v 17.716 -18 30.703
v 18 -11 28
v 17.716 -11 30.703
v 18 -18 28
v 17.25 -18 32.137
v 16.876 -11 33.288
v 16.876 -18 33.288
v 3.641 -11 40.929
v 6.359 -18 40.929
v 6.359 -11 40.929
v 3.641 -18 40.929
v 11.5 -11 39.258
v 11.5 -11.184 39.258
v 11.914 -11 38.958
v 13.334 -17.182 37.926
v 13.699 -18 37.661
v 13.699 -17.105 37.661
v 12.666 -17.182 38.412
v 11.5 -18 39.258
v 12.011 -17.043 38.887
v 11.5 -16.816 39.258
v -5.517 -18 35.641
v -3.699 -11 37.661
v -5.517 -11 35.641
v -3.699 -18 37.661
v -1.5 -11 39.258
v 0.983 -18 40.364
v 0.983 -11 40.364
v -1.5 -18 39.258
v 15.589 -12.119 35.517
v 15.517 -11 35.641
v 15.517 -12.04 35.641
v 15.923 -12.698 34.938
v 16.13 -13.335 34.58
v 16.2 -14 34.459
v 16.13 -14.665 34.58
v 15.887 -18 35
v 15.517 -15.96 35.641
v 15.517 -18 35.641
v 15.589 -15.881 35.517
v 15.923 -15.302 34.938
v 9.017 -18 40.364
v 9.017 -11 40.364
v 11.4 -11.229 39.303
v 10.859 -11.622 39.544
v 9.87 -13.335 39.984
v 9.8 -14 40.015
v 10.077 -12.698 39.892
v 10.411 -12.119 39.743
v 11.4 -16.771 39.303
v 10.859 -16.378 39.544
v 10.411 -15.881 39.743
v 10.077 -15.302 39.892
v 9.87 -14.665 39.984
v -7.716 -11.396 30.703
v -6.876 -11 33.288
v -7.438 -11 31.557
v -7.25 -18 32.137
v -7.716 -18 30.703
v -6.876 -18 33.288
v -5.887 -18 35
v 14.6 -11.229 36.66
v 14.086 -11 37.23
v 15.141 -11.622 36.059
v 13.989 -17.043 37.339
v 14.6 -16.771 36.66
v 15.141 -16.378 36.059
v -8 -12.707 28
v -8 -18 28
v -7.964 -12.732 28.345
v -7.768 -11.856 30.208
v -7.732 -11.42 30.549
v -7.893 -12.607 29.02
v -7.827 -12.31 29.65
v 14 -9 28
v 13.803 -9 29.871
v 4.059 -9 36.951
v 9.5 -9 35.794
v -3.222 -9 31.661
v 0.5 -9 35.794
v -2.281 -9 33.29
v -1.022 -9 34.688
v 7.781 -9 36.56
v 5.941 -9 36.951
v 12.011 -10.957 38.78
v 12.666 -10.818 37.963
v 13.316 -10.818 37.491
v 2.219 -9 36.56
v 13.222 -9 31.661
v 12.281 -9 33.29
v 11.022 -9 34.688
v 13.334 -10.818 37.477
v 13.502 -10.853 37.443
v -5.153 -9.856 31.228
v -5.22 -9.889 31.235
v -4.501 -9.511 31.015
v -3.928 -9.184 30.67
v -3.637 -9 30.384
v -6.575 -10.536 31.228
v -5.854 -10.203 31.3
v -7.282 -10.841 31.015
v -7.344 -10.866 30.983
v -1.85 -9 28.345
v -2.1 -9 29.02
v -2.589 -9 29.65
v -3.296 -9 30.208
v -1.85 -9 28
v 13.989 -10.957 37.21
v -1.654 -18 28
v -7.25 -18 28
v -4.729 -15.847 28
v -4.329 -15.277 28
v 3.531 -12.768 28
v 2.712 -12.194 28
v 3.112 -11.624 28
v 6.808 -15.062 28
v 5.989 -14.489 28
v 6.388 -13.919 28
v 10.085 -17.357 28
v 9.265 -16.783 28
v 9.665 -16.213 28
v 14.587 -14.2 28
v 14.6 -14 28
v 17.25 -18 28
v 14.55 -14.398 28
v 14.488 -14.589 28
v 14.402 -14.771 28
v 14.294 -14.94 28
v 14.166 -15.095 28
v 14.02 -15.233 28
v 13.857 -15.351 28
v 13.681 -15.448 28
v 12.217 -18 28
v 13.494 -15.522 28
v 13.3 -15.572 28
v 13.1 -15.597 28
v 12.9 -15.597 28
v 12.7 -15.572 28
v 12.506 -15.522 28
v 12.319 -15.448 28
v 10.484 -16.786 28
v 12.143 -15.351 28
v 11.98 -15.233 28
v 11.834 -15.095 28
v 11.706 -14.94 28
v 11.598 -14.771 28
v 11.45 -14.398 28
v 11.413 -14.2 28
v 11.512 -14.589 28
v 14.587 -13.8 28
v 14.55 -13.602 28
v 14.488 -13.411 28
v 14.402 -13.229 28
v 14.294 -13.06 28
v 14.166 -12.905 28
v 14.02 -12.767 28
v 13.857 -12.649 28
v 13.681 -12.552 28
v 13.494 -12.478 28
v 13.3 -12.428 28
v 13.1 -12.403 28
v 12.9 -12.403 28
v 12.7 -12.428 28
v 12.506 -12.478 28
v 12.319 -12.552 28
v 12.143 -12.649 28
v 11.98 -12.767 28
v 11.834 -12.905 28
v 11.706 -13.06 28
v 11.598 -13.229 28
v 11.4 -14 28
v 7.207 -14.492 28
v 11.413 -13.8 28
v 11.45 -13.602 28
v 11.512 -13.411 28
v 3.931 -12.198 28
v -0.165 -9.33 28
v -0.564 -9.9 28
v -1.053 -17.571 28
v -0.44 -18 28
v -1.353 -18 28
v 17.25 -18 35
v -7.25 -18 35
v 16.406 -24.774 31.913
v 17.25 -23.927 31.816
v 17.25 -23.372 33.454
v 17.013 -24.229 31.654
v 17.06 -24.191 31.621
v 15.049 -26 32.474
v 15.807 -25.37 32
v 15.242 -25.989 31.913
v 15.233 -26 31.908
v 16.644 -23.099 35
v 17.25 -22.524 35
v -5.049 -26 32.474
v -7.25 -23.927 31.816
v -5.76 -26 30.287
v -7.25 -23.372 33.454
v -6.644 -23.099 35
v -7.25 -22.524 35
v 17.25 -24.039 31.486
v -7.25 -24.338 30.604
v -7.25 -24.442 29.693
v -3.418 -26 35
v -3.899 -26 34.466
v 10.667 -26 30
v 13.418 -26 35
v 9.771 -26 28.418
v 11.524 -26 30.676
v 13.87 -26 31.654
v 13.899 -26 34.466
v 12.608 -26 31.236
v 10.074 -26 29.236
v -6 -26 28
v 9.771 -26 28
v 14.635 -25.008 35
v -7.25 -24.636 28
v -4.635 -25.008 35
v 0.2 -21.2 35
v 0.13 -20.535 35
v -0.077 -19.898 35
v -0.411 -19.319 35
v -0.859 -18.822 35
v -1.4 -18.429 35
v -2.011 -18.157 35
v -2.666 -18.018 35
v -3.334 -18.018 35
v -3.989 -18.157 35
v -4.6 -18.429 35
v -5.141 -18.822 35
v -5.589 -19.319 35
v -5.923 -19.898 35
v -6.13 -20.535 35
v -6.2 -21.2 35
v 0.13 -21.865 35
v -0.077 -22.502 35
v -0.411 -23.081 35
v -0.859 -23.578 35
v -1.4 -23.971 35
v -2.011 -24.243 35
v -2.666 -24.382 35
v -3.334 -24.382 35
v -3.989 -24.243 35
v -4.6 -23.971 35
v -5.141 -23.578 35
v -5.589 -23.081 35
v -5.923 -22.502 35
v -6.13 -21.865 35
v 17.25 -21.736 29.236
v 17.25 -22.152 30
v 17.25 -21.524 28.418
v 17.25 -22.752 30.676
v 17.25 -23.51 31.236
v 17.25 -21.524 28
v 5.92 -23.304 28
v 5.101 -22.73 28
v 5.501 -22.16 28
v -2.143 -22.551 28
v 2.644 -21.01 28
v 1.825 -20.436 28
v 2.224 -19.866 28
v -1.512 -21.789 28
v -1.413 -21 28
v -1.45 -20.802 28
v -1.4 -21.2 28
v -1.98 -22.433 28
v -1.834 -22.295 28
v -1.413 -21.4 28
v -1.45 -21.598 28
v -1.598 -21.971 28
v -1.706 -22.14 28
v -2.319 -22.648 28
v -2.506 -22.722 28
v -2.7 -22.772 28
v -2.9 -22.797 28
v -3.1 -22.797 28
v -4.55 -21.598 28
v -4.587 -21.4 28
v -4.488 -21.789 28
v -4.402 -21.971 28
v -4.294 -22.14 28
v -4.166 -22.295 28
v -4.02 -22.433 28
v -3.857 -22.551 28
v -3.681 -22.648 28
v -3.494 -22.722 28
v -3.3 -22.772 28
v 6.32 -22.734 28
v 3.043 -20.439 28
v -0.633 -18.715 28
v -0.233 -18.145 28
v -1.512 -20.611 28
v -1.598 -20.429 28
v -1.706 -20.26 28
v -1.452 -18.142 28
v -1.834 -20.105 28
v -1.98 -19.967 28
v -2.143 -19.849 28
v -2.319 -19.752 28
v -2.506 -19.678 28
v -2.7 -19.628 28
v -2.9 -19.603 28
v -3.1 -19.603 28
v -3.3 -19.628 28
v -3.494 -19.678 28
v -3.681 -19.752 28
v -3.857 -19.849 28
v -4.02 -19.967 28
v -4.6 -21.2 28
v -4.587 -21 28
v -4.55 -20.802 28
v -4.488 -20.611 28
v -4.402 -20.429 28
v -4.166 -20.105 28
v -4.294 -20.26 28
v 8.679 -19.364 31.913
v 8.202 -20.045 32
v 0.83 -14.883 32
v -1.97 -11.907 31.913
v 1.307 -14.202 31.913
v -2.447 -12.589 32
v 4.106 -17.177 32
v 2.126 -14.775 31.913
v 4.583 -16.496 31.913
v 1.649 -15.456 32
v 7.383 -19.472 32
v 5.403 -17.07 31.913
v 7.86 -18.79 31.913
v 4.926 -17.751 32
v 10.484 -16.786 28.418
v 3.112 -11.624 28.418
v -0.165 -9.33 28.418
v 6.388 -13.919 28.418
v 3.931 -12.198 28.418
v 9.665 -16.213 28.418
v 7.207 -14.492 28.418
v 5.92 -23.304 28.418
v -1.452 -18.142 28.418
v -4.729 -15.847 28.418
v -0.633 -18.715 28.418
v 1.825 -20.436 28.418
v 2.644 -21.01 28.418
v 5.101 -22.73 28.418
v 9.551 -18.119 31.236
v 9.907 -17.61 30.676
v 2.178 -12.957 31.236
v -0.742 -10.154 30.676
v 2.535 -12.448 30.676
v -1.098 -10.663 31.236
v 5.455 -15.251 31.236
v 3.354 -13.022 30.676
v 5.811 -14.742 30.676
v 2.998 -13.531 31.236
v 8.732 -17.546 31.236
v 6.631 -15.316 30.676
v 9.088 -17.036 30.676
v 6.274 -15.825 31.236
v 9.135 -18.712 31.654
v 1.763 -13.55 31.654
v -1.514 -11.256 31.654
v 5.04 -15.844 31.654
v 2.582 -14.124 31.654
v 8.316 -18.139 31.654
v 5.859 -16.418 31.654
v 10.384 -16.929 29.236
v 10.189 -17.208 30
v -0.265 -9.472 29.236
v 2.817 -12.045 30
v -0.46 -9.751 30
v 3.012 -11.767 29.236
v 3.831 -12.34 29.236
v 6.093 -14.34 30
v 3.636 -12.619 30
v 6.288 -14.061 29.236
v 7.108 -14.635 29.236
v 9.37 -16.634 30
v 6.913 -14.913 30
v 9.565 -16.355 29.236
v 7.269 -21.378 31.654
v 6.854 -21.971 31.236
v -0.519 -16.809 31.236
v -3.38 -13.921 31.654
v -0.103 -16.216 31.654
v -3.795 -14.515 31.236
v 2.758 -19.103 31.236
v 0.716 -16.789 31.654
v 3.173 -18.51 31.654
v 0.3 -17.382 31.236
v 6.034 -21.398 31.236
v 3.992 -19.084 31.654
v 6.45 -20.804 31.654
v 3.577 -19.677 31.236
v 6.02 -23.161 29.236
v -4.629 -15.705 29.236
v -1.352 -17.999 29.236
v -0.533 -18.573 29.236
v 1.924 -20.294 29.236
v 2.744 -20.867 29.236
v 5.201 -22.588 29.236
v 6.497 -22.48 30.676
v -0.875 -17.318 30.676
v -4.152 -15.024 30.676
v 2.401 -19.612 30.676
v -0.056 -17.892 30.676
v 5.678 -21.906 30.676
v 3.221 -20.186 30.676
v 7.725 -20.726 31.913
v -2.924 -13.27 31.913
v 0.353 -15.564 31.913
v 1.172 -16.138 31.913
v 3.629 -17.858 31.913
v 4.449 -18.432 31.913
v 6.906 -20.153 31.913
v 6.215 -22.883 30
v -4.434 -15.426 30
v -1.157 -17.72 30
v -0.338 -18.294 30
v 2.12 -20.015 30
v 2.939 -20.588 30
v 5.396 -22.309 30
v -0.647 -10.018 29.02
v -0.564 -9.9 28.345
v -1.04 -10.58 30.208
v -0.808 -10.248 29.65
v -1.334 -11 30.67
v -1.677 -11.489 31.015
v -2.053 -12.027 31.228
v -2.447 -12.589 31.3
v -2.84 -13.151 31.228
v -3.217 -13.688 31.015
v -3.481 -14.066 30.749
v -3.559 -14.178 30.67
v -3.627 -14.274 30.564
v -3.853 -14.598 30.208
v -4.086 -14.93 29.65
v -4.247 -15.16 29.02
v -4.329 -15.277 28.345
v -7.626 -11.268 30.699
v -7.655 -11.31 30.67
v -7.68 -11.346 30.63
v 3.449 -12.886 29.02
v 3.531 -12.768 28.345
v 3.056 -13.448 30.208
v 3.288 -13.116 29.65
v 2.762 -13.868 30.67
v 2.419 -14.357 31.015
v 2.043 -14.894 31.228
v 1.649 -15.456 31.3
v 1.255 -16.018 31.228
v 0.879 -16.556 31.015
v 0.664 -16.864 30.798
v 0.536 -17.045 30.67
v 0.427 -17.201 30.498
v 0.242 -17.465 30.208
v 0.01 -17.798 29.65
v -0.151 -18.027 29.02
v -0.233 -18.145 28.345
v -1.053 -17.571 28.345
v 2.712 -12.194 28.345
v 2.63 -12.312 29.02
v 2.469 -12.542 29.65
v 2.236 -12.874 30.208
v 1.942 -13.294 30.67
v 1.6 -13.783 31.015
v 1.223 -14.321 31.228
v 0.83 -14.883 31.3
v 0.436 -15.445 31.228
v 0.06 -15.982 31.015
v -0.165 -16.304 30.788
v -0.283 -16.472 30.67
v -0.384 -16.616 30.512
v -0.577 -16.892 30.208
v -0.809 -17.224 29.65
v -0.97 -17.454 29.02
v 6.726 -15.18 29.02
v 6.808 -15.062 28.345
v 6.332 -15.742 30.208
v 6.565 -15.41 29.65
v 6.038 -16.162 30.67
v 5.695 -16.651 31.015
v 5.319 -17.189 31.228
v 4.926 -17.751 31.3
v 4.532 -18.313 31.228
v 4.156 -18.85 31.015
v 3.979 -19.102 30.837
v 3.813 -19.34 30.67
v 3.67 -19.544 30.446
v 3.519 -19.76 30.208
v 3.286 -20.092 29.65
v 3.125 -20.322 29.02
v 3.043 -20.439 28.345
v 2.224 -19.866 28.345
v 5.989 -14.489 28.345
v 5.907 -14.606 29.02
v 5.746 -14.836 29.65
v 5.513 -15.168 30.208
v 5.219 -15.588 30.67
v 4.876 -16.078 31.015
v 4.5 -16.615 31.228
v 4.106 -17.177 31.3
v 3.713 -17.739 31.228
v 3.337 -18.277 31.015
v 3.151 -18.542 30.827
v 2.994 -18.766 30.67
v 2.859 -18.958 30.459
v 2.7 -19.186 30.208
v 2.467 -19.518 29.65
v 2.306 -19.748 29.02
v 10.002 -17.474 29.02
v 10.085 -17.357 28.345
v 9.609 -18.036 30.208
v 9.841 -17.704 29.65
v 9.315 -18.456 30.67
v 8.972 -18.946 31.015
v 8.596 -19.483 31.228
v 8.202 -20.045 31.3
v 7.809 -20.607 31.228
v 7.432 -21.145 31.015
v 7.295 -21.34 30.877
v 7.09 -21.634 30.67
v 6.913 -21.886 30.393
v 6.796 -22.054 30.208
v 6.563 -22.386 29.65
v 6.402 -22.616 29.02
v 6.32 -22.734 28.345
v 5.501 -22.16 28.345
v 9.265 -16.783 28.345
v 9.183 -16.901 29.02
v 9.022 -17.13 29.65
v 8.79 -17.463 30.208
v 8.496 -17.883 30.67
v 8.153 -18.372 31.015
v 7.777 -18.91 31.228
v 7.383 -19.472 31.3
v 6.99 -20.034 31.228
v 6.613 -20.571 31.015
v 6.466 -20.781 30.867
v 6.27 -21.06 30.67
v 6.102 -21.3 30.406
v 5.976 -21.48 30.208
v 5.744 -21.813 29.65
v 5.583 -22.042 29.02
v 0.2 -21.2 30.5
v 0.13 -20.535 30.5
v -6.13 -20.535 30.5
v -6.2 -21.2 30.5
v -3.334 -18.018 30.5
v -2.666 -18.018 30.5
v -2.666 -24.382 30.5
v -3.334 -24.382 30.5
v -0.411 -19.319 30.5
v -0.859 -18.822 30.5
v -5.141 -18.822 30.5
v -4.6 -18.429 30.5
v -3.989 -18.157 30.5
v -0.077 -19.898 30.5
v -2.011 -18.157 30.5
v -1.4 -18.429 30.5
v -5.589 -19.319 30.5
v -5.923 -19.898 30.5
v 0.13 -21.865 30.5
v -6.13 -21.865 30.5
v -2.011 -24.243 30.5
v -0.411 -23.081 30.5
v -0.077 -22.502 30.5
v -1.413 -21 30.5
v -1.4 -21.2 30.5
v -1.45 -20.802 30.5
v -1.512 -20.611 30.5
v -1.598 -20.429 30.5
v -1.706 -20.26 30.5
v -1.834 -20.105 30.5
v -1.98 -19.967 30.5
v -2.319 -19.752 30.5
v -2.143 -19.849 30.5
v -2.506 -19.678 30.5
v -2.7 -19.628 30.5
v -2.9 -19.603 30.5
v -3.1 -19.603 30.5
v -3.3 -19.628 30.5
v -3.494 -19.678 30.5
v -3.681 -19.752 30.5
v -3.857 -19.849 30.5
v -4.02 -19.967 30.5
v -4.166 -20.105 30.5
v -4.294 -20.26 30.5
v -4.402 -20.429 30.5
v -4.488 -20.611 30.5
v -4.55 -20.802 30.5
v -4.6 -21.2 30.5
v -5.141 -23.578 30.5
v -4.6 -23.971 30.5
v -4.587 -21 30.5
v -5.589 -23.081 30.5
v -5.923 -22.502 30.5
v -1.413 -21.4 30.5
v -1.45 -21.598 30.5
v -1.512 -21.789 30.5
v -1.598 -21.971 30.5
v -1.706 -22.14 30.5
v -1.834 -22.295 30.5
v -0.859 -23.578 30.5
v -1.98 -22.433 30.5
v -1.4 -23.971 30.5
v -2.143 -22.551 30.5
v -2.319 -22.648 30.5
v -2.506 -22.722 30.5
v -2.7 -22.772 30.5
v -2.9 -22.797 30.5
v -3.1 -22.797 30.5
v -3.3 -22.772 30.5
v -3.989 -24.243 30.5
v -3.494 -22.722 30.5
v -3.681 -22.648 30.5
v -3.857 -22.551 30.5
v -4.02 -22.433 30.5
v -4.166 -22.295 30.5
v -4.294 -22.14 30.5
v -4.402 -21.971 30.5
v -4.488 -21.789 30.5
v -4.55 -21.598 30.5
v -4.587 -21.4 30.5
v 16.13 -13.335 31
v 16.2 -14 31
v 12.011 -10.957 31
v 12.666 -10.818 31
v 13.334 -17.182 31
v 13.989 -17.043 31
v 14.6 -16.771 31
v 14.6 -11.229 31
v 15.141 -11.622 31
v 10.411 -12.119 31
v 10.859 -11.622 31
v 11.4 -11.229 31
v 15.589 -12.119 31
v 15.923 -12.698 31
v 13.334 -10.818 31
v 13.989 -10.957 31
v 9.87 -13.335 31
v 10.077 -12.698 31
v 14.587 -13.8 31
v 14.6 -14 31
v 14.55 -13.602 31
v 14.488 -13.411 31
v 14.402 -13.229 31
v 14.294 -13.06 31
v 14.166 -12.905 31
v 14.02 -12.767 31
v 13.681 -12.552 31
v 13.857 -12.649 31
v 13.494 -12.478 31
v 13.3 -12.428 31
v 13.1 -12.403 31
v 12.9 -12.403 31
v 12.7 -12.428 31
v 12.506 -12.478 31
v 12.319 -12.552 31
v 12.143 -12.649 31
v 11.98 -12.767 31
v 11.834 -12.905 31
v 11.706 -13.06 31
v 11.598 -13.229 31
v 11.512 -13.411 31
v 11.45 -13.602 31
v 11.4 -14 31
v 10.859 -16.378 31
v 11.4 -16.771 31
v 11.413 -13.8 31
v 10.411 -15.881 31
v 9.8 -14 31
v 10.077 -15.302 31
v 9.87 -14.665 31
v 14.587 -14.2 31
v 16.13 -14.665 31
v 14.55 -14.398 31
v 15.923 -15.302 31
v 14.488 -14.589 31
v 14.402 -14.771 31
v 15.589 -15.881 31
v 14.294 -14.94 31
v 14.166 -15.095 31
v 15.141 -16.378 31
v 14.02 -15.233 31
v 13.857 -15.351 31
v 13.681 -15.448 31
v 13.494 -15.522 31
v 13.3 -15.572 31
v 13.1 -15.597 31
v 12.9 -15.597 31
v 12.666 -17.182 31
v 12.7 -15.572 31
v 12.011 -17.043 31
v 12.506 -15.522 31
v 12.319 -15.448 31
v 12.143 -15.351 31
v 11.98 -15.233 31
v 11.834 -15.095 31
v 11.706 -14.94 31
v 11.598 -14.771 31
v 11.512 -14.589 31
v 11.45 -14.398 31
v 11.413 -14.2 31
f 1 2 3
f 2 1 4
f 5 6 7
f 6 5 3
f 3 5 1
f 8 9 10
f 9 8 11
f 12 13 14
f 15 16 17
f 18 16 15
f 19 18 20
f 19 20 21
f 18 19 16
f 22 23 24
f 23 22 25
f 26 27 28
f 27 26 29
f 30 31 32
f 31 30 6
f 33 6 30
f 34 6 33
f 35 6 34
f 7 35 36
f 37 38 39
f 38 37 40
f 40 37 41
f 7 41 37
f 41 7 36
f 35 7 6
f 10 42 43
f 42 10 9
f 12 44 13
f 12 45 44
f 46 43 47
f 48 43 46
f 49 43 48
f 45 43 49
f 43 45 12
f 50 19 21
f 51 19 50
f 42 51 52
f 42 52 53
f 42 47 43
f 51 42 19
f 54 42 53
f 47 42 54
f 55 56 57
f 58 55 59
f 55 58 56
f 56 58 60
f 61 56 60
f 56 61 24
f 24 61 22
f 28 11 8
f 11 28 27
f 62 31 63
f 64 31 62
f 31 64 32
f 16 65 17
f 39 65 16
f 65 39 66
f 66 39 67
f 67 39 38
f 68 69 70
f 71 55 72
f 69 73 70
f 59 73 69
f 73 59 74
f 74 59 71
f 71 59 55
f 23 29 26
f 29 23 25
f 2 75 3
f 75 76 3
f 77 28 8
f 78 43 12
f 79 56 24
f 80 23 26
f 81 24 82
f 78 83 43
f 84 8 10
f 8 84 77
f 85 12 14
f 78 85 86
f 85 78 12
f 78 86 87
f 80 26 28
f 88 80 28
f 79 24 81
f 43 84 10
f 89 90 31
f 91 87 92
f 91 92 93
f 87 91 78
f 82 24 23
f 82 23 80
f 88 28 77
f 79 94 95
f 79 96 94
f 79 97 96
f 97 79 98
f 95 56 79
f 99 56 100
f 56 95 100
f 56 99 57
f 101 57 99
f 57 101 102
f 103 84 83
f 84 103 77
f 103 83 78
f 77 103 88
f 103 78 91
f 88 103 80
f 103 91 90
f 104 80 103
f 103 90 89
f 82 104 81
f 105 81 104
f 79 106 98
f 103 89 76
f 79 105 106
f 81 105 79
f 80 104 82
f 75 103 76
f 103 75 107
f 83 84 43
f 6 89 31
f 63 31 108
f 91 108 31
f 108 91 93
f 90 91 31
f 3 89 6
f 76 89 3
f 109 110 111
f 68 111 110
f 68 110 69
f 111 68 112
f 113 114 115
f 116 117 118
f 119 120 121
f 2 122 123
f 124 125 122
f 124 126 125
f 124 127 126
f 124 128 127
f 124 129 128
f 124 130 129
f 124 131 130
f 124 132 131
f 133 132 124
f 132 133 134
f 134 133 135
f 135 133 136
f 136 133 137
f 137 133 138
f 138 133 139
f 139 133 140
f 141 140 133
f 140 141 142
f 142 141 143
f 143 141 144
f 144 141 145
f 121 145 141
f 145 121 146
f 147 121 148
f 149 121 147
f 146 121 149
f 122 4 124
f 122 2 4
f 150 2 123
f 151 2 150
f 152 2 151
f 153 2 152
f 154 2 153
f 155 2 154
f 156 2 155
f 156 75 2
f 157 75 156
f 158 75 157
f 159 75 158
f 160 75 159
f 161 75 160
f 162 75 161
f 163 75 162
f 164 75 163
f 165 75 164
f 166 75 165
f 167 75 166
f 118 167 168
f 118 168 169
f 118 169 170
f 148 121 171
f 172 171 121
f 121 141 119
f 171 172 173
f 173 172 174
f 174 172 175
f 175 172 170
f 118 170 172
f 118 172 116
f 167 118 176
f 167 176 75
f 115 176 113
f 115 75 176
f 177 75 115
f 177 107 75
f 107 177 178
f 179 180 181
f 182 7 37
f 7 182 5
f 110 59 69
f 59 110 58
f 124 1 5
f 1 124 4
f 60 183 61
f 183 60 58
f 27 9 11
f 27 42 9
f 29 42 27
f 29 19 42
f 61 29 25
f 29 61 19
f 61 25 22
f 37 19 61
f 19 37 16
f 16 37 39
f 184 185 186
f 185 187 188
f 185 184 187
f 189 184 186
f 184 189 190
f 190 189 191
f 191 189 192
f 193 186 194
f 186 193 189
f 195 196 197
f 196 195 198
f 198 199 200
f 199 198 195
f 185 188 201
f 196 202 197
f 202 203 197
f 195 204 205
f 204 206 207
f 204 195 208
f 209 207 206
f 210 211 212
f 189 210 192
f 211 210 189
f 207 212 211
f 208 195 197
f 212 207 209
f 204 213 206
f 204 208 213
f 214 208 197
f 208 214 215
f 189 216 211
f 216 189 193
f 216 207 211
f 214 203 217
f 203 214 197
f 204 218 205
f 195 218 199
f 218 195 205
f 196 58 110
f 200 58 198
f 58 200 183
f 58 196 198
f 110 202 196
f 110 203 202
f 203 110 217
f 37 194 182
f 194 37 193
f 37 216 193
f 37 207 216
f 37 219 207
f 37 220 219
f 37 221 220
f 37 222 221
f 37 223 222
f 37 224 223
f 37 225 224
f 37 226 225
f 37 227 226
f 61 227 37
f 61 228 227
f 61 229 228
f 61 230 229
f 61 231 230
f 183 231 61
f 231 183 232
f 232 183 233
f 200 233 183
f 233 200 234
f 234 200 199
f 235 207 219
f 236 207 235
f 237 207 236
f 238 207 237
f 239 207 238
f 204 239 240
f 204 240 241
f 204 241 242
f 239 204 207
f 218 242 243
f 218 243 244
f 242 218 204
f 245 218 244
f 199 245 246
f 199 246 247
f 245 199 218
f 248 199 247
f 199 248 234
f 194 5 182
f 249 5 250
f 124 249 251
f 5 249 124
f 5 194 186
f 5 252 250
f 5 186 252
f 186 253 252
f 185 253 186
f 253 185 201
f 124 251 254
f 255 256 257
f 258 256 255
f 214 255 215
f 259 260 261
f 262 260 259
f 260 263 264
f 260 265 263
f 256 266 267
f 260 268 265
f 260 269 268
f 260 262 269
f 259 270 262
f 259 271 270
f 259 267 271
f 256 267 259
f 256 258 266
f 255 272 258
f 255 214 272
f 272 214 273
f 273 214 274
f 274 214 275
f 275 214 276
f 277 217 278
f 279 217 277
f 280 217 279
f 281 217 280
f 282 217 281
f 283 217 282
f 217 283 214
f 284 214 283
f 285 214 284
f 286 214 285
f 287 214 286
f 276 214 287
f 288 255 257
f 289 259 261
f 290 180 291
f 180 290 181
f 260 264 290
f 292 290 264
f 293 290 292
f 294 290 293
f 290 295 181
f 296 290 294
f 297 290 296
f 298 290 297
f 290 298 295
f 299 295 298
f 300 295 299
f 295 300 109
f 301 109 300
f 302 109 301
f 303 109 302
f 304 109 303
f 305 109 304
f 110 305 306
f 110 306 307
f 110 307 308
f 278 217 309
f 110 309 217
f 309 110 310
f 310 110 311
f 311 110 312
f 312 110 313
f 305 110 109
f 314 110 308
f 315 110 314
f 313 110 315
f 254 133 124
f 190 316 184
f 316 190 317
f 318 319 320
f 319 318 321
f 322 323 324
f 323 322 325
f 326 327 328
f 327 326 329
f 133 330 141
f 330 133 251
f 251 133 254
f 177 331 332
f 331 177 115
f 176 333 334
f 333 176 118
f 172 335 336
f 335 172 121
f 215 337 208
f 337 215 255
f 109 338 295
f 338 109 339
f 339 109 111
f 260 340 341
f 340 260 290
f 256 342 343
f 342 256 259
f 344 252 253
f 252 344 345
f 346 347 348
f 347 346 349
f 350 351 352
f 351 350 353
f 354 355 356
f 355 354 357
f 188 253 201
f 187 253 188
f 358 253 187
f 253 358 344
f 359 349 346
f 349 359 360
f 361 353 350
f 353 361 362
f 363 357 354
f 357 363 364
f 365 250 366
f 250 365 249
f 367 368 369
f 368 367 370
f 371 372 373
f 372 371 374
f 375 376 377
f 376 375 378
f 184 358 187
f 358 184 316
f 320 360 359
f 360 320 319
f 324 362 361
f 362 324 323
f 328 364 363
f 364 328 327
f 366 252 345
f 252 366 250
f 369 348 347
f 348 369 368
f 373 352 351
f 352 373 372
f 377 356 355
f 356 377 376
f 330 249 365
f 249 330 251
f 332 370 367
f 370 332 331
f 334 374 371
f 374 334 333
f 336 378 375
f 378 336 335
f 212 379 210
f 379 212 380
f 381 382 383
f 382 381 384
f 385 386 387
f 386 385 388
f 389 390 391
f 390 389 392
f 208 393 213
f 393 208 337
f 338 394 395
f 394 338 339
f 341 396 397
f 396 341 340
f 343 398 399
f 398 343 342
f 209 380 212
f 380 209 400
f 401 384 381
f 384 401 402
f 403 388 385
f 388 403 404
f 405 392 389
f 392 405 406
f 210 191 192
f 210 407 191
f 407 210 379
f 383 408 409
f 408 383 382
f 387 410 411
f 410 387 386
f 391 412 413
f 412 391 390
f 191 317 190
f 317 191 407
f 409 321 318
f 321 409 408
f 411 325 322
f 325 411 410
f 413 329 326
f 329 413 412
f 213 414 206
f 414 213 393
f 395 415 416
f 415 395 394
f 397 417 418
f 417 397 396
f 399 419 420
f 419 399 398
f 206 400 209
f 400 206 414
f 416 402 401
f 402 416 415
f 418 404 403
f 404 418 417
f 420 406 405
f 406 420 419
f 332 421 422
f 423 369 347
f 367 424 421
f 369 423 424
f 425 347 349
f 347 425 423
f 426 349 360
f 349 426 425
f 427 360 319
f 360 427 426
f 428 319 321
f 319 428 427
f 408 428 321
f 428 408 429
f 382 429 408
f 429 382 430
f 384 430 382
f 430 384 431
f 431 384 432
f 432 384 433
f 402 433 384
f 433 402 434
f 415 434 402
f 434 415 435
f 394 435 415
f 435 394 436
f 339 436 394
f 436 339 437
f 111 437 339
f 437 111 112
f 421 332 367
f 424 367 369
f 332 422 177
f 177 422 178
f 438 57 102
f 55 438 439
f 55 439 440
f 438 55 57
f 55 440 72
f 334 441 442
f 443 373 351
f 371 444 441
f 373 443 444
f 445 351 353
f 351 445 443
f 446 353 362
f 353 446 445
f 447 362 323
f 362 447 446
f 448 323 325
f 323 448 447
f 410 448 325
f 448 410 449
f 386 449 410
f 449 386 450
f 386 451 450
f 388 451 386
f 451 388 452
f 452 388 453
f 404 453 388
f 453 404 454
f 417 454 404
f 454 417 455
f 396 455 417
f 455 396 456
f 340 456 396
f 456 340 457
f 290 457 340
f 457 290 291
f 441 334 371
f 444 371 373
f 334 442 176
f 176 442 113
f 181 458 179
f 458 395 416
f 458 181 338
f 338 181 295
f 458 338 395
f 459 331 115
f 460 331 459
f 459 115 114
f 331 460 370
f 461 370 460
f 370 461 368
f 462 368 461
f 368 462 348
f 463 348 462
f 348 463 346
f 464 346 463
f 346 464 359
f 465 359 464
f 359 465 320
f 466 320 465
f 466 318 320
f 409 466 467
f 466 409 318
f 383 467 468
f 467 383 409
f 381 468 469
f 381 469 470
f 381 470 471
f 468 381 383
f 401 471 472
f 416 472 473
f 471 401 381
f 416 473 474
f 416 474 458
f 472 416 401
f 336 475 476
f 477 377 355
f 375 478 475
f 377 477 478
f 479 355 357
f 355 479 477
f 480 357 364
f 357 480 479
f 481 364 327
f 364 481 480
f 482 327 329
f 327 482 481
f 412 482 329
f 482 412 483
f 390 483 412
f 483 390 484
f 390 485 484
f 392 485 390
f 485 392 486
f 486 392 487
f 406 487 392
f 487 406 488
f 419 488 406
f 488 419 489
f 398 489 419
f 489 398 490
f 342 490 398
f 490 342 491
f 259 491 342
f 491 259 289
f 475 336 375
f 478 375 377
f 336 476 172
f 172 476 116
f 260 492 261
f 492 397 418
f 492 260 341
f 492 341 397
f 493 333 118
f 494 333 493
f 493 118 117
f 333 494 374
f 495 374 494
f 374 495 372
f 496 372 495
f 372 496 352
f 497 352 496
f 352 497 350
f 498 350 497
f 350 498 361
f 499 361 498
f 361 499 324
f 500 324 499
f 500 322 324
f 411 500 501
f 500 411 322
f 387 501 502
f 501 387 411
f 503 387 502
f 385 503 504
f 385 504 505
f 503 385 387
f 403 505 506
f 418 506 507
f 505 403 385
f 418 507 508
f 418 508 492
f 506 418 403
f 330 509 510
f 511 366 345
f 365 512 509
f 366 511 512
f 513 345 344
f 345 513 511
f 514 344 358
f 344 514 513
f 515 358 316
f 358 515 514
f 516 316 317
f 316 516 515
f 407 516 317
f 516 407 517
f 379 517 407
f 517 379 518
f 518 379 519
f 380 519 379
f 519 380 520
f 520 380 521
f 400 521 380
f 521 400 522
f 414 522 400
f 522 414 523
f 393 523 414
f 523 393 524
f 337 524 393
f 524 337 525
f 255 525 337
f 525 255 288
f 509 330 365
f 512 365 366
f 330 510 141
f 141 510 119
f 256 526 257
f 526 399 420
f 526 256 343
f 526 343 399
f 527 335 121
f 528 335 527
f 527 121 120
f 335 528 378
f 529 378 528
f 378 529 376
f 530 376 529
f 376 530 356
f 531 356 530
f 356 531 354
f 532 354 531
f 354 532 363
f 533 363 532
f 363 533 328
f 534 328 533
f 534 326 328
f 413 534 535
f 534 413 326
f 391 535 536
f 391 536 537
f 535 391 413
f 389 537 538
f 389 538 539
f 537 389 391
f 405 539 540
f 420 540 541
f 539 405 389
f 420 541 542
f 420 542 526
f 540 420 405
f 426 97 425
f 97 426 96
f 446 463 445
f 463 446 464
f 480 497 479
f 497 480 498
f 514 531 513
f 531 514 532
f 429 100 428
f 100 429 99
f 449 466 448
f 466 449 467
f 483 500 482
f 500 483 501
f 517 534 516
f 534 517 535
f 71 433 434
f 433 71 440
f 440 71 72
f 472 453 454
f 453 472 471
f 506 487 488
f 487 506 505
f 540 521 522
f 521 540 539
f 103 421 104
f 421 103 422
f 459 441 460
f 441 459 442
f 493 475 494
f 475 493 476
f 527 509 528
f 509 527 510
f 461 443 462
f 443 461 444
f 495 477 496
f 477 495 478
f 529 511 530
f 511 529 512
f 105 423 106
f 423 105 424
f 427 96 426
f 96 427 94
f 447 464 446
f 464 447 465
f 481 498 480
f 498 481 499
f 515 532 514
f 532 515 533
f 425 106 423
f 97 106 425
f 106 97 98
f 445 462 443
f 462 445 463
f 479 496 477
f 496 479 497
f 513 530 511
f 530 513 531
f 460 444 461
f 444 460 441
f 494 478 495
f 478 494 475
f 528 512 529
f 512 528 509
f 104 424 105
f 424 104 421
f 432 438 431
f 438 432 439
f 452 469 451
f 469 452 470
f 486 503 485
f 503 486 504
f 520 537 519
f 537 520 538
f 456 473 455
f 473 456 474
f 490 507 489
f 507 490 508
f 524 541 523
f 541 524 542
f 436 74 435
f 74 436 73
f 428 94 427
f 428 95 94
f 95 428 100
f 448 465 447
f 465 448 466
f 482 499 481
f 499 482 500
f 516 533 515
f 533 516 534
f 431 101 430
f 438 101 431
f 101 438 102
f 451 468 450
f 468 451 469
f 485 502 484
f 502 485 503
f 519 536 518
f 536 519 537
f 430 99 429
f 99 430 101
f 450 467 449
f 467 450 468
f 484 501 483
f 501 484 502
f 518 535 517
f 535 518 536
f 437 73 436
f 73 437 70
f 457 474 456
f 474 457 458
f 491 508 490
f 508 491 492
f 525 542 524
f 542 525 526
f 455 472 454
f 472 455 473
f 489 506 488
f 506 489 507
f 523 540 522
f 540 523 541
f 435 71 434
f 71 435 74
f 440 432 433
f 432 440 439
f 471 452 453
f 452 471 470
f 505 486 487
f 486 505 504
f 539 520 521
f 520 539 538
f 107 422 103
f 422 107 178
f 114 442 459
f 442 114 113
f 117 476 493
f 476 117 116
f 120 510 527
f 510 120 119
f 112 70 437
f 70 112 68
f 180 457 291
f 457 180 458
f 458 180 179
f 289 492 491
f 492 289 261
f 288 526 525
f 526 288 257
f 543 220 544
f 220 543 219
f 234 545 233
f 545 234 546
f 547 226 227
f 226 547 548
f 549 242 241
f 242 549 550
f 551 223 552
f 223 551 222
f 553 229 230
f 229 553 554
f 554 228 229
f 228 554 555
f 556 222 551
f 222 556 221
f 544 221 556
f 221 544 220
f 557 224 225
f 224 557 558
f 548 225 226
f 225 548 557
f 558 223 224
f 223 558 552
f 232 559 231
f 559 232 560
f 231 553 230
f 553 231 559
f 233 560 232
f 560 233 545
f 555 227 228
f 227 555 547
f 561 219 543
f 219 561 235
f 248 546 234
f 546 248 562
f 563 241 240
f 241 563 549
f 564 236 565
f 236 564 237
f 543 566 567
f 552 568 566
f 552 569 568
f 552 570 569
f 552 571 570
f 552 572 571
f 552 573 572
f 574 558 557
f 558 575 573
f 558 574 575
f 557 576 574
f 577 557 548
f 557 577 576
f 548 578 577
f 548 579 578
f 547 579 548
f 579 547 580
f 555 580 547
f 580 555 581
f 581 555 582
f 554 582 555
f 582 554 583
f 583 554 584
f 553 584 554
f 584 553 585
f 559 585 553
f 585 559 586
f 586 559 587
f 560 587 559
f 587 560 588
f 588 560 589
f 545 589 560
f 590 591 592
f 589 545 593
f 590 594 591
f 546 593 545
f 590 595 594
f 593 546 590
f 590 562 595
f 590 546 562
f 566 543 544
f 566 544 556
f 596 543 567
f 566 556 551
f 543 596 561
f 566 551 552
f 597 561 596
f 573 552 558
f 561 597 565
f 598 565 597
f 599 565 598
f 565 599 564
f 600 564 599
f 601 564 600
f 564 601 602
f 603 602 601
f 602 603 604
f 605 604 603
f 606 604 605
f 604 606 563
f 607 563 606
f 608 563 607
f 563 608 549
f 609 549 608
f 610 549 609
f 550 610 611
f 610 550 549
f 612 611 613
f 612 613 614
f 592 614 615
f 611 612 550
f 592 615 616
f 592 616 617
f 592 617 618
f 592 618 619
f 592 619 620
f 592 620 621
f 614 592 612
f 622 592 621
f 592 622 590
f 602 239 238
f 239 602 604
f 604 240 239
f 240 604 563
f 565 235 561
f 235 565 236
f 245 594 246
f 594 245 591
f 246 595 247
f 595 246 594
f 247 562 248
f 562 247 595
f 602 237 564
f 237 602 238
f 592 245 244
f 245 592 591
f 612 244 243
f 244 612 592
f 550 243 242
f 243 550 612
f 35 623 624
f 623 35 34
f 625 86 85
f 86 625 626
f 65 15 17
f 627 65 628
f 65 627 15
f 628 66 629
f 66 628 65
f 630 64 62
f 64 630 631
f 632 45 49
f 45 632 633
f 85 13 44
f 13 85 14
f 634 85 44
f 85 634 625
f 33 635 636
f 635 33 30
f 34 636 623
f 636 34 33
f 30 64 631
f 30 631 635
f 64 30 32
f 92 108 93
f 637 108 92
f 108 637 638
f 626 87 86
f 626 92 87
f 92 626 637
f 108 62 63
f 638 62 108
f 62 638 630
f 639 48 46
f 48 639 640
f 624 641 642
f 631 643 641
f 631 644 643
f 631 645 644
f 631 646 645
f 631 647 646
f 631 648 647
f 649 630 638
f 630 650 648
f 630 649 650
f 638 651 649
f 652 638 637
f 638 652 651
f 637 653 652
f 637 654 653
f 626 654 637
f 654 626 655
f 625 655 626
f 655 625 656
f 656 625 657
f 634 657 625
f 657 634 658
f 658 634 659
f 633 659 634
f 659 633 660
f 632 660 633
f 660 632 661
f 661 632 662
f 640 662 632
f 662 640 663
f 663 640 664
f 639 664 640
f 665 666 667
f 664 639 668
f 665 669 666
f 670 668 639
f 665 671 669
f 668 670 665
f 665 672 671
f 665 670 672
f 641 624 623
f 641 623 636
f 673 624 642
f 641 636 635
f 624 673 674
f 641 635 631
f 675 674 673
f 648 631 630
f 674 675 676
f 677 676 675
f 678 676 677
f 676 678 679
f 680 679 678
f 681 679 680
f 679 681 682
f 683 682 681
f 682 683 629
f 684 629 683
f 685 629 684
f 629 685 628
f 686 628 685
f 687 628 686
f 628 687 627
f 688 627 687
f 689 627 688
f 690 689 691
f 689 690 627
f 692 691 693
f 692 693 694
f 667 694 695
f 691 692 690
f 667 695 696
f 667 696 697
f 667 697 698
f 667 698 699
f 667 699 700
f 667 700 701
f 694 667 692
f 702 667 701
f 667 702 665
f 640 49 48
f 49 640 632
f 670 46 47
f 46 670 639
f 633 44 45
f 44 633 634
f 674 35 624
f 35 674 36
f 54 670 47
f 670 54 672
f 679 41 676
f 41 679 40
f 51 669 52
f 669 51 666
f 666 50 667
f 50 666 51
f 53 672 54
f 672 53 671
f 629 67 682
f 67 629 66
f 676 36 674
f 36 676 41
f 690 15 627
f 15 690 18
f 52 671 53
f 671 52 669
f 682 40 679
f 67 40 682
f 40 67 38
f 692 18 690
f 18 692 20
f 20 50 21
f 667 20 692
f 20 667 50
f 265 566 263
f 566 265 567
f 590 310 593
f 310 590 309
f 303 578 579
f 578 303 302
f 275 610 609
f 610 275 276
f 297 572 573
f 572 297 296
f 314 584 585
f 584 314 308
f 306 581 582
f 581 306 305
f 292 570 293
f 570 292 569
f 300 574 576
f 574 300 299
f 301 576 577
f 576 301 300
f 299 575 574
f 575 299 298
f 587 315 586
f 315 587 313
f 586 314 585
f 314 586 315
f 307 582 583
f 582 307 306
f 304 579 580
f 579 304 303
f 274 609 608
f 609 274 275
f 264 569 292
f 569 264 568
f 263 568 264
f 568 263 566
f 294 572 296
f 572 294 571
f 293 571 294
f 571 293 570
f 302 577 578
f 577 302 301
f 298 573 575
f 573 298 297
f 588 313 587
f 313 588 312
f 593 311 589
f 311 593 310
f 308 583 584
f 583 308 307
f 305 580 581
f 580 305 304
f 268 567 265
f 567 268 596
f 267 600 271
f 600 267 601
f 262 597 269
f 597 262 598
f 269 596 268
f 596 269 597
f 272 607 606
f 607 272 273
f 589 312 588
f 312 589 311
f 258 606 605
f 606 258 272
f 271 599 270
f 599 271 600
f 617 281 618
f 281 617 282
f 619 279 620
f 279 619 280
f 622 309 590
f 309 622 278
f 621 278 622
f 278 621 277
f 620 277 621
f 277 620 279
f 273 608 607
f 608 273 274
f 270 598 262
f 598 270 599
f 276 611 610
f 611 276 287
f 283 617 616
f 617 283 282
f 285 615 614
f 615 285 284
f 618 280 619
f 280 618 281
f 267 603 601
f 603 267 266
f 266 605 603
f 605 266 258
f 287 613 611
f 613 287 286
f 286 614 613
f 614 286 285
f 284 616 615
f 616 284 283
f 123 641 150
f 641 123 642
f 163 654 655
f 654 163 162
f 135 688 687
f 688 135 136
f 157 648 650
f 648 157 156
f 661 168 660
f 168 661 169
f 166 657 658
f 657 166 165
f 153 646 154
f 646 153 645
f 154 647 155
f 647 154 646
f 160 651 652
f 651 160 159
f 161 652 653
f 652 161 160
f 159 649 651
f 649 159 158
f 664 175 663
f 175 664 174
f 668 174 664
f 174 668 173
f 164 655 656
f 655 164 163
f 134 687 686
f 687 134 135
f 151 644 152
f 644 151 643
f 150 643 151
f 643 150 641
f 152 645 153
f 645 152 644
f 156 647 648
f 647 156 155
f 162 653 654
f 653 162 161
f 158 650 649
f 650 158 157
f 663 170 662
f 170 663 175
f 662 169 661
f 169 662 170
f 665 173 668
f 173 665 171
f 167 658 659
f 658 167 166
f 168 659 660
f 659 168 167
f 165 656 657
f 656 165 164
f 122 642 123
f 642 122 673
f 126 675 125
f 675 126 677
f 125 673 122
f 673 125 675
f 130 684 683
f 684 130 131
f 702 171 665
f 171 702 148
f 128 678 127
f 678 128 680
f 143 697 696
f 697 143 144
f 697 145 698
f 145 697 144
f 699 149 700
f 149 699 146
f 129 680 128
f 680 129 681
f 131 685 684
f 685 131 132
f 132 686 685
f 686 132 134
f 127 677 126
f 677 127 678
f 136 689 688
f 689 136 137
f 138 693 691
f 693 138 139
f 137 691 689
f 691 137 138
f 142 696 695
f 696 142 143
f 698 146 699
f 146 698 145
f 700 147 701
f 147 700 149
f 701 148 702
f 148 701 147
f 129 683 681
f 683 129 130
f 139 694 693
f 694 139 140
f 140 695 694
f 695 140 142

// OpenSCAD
// PRUSA iteration4
// Heatbed cable clip
// GNU GPL v3
// Josef Průša <iam@josefprusa.cz> and contributors
// http://www.reprap.org/wiki/Prusa_Mendel
// http://prusamendel.org

module heatbed_cable_clip()
{
    difference()
    {
        union()
        {
            difference()
            {
                union()
                {
                    // body base
                    translate([75, 99, 28]) rotate([90, 0, 0]) cylinder(h = 15, r = 13, $fn = 30);
                    translate([75, 101, 28]) rotate([90, 0, 0]) cylinder(h = 2, r1 = 9, r2 = 13, $fn = 30);
                }

                // cut flat and shape
                translate([60, 82, 14]) cube([30, 20, 14]);
                translate([60, 72, 20]) cube([30, 20, 30]);
            }

            difference()
            {
                translate([62.75, 84, 28]) cube([24.5, 8, 7]);
                difference()
                {
                    translate([75, 85, 28]) rotate([90, 0, 0]) cube([30, 20, 10], center = true);
                    translate([75, 90, 28]) rotate([90, 0, 0]) cylinder(h = 6, r1 = 16.5, r2 = 11, $fn = 30);
                }
            }
        }

        // cable opening
        translate([61, 102, 28]) rotate([35, 90, 0])

        difference()
        {
            cylinder(h = 35, r = 4, $fn = 30);

            translate([0, 0, 3]) cylinder(h = 5, r = 4, $fn = 30);
            translate([0, 0, 12]) cylinder(h = 1, r = 4, $fn = 30);
            translate([0, 0, 16]) cylinder(h = 1, r = 4, $fn = 30);
            translate([0, 0, 20]) cylinder(h = 1, r = 4, $fn = 30);
        }
        translate([61, 102, 28]) rotate([35, 90, 0]) cylinder(h = 35, r = 3.3, $fn = 30);

        // screw heads
        translate([67, 88.8, 30.5]) rotate([0, 0, 0]) cylinder(h = 10, r = 3.2, $fn = 30);
        translate([83, 96, 31]) rotate([0, 0, 0]) cylinder(h = 10, r = 3.2, $fn = 30);

        // screws
        translate([67, 88.8, 14]) rotate([0, 0, 0]) cylinder(h = 35, r = 1.6, $fn = 50);
        translate([83, 96, 14]) rotate([0, 0, 0]) cylinder(h = 35, r = 1.6, $fn = 50);
    }
}

translate([-70, -110, 0]) heatbed_cable_clip();
